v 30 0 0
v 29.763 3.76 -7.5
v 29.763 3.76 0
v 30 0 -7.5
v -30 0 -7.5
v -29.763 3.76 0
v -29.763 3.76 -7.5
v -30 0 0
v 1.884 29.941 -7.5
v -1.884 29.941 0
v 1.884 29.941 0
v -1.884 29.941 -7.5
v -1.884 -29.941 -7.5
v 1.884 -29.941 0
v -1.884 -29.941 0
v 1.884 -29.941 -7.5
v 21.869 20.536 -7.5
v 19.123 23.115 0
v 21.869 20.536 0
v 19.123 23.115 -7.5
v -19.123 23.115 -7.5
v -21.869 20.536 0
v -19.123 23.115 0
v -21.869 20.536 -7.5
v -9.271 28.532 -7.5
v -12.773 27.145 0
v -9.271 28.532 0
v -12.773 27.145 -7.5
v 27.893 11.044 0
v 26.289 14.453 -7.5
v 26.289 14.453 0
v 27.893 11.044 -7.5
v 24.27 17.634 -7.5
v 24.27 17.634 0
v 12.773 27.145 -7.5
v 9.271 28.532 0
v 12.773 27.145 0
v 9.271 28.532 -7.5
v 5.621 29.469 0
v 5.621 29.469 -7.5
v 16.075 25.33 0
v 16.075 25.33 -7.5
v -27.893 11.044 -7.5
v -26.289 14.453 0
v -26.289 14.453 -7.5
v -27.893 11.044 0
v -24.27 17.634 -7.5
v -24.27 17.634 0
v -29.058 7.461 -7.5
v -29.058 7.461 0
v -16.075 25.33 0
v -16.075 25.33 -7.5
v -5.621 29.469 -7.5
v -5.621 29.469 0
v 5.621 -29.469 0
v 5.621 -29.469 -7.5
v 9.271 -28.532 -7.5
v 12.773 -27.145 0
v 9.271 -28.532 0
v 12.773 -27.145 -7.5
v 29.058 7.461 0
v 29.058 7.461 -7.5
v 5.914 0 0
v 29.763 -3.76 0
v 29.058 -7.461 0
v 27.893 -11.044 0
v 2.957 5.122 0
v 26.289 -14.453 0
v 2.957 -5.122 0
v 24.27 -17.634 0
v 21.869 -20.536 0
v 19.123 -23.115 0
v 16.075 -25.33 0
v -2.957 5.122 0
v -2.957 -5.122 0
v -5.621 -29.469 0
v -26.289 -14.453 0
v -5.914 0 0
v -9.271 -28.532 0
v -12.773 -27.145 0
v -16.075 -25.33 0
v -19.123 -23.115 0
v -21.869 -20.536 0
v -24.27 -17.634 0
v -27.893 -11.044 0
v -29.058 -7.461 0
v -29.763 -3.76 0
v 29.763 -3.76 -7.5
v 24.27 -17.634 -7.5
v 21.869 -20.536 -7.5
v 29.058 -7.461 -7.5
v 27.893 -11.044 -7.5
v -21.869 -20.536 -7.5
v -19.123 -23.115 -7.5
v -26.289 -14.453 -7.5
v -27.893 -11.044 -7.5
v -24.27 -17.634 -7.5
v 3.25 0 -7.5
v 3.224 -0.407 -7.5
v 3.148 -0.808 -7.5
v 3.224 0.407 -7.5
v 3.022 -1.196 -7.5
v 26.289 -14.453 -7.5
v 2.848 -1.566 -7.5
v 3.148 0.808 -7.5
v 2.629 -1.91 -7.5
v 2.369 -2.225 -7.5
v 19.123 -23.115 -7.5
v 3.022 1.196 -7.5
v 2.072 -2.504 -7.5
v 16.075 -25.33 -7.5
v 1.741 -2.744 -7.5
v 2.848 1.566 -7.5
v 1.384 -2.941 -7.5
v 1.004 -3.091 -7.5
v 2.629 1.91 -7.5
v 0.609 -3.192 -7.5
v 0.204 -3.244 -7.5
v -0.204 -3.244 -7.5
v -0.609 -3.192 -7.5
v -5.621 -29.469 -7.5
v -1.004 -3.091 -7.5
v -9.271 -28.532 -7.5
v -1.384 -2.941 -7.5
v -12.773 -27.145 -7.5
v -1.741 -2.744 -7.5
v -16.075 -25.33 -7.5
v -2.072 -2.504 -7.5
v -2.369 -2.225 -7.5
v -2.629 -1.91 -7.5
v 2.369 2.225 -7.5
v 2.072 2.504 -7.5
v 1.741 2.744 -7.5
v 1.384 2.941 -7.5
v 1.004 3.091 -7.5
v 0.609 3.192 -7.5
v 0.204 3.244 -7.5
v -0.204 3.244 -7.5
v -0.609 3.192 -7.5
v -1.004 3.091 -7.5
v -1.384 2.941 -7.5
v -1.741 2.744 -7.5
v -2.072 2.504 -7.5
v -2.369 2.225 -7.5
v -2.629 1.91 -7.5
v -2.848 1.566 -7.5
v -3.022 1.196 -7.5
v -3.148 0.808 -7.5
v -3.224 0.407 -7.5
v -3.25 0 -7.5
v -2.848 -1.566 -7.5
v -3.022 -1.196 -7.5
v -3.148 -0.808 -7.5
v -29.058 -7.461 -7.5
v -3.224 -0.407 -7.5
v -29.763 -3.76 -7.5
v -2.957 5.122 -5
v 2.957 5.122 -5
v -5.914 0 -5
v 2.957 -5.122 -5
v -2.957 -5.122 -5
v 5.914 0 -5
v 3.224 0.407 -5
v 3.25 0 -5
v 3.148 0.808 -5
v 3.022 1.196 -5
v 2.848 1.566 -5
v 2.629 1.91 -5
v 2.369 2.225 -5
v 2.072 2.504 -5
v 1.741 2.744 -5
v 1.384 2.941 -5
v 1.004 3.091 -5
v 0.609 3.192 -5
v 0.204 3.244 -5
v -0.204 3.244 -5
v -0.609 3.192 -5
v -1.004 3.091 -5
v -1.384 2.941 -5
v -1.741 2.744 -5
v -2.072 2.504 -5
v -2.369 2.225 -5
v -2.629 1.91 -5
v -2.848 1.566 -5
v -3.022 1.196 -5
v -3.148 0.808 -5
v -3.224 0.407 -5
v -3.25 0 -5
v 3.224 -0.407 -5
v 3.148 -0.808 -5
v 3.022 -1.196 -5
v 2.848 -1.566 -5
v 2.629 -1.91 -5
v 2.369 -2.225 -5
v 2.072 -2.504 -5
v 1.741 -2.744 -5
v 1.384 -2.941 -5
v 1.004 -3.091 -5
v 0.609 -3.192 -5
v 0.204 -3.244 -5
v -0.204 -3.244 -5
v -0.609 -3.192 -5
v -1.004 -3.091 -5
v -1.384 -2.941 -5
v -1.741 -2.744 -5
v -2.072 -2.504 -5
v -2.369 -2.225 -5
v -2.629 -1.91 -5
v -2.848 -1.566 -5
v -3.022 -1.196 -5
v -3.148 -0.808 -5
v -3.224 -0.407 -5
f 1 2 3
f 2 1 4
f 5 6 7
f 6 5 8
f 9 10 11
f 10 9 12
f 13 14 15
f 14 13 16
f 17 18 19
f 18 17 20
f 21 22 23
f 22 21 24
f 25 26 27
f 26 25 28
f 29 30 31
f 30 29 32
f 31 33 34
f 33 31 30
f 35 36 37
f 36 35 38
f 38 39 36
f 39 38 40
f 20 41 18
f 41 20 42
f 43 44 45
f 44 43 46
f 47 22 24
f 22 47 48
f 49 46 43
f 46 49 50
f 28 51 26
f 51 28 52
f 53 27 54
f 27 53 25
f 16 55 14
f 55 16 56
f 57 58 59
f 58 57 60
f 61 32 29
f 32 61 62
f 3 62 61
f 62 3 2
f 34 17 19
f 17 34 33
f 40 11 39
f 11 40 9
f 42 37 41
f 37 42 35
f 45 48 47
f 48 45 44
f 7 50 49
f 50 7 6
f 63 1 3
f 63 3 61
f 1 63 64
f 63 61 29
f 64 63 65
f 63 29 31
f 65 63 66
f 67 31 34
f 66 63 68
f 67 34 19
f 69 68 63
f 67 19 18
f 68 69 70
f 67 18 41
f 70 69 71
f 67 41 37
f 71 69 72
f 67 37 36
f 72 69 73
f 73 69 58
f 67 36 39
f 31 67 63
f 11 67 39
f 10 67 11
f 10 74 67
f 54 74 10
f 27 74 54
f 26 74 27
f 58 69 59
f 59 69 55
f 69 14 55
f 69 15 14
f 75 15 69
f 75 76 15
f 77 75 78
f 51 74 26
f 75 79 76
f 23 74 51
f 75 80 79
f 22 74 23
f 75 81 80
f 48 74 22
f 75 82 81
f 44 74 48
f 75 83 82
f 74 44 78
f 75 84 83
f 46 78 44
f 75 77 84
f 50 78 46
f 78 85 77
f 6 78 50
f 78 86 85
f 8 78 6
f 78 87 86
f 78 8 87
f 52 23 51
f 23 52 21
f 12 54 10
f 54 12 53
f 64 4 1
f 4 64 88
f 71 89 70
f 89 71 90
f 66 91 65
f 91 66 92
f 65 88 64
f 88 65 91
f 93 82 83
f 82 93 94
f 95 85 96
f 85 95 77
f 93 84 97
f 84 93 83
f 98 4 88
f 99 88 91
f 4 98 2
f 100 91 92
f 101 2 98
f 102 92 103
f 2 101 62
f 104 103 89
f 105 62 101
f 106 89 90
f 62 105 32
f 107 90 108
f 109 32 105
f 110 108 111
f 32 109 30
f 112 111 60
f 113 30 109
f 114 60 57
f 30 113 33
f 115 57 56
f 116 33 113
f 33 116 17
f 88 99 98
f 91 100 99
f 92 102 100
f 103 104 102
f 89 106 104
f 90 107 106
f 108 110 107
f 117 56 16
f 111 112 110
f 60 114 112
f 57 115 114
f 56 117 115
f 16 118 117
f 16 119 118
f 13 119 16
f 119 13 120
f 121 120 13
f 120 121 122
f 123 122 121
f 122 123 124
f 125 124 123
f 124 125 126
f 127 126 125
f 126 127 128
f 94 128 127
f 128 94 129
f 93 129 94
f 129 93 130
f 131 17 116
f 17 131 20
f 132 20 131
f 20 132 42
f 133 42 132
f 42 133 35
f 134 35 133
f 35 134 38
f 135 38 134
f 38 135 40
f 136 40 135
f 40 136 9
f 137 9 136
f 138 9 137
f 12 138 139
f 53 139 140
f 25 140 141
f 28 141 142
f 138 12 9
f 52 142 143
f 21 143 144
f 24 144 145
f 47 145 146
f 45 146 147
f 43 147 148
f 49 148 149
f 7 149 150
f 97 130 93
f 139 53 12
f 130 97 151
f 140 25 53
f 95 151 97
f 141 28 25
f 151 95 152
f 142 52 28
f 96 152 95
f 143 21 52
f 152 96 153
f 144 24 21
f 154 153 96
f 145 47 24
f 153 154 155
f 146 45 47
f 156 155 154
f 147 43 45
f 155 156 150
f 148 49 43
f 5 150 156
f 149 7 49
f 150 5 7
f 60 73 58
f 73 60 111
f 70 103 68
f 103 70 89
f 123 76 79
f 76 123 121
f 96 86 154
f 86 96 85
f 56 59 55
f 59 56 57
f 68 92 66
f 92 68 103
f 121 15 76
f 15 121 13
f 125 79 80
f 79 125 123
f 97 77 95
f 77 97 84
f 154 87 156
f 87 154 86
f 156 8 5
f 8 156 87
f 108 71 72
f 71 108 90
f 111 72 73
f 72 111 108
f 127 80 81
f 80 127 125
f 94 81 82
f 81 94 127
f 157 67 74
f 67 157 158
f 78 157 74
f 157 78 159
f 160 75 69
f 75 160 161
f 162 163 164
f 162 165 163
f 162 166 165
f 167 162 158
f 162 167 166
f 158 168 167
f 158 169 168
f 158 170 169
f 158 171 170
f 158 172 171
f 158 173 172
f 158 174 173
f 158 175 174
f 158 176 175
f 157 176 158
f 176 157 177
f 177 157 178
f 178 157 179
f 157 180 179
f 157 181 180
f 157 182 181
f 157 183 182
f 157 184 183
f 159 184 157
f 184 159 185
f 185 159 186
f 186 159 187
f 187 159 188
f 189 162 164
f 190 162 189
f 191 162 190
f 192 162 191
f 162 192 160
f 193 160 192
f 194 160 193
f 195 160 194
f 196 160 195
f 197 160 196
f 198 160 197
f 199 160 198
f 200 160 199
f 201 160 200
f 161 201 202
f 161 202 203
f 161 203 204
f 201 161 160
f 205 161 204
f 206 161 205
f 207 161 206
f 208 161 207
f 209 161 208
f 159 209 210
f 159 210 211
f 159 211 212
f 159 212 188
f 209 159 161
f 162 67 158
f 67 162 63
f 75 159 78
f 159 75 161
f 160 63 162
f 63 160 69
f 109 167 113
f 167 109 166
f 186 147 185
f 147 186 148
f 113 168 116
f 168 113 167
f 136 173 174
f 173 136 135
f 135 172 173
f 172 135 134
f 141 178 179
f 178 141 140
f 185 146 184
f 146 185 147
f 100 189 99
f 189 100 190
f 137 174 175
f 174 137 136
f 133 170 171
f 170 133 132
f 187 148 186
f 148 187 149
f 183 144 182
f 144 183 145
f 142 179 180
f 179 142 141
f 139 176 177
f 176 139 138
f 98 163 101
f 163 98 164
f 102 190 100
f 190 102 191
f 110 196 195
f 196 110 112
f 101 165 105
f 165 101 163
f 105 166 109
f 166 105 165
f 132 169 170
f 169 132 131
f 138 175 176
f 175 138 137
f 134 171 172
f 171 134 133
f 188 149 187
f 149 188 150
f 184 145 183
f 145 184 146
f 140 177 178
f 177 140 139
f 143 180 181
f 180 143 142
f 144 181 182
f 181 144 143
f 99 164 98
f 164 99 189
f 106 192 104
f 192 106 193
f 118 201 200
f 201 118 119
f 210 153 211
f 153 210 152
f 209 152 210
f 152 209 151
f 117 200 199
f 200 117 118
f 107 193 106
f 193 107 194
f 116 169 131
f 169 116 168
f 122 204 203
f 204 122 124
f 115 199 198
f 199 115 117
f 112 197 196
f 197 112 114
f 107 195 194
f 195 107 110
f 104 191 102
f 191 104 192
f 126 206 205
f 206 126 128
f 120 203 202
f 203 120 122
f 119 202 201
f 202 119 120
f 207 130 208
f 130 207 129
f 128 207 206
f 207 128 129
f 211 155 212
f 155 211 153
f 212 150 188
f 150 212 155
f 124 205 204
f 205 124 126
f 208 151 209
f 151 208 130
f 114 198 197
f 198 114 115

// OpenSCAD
$fn = 50;


difference() {
	union() {
		translate(v = [0, 0, -7.5000000000]) {
			cylinder(h = 7.5000000000, r = 30.0000000000);
		}
		translate(v = [0, 0, -9.0000000000]) {
			cylinder(h = 9, r = 2.8750000000);
		}
	}
	union() {
		translate(v = [0, 0, 0]) {
			rotate(a = [0, 0, 0]) {
				difference() {
					union() {
						translate(v = [0, 0, -5]) {
							linear_extrude(height = 5) {
								polygon(points = [[5.9142500000, 0.0000000000], [2.9571250000, 5.1218907443], [-2.9571250000, 5.1218907443], [-5.9142500000, 0.0000000000], [-2.9571250000, -5.1218907443], [2.9571250000, -5.1218907443]]);
							}
						}
					}
					union();
				}
			}
		}
		#translate(v = [0, 0, -100.0000000000]) {
			cylinder(h = 200, r = 3.2500000000);
		}
	}
}
